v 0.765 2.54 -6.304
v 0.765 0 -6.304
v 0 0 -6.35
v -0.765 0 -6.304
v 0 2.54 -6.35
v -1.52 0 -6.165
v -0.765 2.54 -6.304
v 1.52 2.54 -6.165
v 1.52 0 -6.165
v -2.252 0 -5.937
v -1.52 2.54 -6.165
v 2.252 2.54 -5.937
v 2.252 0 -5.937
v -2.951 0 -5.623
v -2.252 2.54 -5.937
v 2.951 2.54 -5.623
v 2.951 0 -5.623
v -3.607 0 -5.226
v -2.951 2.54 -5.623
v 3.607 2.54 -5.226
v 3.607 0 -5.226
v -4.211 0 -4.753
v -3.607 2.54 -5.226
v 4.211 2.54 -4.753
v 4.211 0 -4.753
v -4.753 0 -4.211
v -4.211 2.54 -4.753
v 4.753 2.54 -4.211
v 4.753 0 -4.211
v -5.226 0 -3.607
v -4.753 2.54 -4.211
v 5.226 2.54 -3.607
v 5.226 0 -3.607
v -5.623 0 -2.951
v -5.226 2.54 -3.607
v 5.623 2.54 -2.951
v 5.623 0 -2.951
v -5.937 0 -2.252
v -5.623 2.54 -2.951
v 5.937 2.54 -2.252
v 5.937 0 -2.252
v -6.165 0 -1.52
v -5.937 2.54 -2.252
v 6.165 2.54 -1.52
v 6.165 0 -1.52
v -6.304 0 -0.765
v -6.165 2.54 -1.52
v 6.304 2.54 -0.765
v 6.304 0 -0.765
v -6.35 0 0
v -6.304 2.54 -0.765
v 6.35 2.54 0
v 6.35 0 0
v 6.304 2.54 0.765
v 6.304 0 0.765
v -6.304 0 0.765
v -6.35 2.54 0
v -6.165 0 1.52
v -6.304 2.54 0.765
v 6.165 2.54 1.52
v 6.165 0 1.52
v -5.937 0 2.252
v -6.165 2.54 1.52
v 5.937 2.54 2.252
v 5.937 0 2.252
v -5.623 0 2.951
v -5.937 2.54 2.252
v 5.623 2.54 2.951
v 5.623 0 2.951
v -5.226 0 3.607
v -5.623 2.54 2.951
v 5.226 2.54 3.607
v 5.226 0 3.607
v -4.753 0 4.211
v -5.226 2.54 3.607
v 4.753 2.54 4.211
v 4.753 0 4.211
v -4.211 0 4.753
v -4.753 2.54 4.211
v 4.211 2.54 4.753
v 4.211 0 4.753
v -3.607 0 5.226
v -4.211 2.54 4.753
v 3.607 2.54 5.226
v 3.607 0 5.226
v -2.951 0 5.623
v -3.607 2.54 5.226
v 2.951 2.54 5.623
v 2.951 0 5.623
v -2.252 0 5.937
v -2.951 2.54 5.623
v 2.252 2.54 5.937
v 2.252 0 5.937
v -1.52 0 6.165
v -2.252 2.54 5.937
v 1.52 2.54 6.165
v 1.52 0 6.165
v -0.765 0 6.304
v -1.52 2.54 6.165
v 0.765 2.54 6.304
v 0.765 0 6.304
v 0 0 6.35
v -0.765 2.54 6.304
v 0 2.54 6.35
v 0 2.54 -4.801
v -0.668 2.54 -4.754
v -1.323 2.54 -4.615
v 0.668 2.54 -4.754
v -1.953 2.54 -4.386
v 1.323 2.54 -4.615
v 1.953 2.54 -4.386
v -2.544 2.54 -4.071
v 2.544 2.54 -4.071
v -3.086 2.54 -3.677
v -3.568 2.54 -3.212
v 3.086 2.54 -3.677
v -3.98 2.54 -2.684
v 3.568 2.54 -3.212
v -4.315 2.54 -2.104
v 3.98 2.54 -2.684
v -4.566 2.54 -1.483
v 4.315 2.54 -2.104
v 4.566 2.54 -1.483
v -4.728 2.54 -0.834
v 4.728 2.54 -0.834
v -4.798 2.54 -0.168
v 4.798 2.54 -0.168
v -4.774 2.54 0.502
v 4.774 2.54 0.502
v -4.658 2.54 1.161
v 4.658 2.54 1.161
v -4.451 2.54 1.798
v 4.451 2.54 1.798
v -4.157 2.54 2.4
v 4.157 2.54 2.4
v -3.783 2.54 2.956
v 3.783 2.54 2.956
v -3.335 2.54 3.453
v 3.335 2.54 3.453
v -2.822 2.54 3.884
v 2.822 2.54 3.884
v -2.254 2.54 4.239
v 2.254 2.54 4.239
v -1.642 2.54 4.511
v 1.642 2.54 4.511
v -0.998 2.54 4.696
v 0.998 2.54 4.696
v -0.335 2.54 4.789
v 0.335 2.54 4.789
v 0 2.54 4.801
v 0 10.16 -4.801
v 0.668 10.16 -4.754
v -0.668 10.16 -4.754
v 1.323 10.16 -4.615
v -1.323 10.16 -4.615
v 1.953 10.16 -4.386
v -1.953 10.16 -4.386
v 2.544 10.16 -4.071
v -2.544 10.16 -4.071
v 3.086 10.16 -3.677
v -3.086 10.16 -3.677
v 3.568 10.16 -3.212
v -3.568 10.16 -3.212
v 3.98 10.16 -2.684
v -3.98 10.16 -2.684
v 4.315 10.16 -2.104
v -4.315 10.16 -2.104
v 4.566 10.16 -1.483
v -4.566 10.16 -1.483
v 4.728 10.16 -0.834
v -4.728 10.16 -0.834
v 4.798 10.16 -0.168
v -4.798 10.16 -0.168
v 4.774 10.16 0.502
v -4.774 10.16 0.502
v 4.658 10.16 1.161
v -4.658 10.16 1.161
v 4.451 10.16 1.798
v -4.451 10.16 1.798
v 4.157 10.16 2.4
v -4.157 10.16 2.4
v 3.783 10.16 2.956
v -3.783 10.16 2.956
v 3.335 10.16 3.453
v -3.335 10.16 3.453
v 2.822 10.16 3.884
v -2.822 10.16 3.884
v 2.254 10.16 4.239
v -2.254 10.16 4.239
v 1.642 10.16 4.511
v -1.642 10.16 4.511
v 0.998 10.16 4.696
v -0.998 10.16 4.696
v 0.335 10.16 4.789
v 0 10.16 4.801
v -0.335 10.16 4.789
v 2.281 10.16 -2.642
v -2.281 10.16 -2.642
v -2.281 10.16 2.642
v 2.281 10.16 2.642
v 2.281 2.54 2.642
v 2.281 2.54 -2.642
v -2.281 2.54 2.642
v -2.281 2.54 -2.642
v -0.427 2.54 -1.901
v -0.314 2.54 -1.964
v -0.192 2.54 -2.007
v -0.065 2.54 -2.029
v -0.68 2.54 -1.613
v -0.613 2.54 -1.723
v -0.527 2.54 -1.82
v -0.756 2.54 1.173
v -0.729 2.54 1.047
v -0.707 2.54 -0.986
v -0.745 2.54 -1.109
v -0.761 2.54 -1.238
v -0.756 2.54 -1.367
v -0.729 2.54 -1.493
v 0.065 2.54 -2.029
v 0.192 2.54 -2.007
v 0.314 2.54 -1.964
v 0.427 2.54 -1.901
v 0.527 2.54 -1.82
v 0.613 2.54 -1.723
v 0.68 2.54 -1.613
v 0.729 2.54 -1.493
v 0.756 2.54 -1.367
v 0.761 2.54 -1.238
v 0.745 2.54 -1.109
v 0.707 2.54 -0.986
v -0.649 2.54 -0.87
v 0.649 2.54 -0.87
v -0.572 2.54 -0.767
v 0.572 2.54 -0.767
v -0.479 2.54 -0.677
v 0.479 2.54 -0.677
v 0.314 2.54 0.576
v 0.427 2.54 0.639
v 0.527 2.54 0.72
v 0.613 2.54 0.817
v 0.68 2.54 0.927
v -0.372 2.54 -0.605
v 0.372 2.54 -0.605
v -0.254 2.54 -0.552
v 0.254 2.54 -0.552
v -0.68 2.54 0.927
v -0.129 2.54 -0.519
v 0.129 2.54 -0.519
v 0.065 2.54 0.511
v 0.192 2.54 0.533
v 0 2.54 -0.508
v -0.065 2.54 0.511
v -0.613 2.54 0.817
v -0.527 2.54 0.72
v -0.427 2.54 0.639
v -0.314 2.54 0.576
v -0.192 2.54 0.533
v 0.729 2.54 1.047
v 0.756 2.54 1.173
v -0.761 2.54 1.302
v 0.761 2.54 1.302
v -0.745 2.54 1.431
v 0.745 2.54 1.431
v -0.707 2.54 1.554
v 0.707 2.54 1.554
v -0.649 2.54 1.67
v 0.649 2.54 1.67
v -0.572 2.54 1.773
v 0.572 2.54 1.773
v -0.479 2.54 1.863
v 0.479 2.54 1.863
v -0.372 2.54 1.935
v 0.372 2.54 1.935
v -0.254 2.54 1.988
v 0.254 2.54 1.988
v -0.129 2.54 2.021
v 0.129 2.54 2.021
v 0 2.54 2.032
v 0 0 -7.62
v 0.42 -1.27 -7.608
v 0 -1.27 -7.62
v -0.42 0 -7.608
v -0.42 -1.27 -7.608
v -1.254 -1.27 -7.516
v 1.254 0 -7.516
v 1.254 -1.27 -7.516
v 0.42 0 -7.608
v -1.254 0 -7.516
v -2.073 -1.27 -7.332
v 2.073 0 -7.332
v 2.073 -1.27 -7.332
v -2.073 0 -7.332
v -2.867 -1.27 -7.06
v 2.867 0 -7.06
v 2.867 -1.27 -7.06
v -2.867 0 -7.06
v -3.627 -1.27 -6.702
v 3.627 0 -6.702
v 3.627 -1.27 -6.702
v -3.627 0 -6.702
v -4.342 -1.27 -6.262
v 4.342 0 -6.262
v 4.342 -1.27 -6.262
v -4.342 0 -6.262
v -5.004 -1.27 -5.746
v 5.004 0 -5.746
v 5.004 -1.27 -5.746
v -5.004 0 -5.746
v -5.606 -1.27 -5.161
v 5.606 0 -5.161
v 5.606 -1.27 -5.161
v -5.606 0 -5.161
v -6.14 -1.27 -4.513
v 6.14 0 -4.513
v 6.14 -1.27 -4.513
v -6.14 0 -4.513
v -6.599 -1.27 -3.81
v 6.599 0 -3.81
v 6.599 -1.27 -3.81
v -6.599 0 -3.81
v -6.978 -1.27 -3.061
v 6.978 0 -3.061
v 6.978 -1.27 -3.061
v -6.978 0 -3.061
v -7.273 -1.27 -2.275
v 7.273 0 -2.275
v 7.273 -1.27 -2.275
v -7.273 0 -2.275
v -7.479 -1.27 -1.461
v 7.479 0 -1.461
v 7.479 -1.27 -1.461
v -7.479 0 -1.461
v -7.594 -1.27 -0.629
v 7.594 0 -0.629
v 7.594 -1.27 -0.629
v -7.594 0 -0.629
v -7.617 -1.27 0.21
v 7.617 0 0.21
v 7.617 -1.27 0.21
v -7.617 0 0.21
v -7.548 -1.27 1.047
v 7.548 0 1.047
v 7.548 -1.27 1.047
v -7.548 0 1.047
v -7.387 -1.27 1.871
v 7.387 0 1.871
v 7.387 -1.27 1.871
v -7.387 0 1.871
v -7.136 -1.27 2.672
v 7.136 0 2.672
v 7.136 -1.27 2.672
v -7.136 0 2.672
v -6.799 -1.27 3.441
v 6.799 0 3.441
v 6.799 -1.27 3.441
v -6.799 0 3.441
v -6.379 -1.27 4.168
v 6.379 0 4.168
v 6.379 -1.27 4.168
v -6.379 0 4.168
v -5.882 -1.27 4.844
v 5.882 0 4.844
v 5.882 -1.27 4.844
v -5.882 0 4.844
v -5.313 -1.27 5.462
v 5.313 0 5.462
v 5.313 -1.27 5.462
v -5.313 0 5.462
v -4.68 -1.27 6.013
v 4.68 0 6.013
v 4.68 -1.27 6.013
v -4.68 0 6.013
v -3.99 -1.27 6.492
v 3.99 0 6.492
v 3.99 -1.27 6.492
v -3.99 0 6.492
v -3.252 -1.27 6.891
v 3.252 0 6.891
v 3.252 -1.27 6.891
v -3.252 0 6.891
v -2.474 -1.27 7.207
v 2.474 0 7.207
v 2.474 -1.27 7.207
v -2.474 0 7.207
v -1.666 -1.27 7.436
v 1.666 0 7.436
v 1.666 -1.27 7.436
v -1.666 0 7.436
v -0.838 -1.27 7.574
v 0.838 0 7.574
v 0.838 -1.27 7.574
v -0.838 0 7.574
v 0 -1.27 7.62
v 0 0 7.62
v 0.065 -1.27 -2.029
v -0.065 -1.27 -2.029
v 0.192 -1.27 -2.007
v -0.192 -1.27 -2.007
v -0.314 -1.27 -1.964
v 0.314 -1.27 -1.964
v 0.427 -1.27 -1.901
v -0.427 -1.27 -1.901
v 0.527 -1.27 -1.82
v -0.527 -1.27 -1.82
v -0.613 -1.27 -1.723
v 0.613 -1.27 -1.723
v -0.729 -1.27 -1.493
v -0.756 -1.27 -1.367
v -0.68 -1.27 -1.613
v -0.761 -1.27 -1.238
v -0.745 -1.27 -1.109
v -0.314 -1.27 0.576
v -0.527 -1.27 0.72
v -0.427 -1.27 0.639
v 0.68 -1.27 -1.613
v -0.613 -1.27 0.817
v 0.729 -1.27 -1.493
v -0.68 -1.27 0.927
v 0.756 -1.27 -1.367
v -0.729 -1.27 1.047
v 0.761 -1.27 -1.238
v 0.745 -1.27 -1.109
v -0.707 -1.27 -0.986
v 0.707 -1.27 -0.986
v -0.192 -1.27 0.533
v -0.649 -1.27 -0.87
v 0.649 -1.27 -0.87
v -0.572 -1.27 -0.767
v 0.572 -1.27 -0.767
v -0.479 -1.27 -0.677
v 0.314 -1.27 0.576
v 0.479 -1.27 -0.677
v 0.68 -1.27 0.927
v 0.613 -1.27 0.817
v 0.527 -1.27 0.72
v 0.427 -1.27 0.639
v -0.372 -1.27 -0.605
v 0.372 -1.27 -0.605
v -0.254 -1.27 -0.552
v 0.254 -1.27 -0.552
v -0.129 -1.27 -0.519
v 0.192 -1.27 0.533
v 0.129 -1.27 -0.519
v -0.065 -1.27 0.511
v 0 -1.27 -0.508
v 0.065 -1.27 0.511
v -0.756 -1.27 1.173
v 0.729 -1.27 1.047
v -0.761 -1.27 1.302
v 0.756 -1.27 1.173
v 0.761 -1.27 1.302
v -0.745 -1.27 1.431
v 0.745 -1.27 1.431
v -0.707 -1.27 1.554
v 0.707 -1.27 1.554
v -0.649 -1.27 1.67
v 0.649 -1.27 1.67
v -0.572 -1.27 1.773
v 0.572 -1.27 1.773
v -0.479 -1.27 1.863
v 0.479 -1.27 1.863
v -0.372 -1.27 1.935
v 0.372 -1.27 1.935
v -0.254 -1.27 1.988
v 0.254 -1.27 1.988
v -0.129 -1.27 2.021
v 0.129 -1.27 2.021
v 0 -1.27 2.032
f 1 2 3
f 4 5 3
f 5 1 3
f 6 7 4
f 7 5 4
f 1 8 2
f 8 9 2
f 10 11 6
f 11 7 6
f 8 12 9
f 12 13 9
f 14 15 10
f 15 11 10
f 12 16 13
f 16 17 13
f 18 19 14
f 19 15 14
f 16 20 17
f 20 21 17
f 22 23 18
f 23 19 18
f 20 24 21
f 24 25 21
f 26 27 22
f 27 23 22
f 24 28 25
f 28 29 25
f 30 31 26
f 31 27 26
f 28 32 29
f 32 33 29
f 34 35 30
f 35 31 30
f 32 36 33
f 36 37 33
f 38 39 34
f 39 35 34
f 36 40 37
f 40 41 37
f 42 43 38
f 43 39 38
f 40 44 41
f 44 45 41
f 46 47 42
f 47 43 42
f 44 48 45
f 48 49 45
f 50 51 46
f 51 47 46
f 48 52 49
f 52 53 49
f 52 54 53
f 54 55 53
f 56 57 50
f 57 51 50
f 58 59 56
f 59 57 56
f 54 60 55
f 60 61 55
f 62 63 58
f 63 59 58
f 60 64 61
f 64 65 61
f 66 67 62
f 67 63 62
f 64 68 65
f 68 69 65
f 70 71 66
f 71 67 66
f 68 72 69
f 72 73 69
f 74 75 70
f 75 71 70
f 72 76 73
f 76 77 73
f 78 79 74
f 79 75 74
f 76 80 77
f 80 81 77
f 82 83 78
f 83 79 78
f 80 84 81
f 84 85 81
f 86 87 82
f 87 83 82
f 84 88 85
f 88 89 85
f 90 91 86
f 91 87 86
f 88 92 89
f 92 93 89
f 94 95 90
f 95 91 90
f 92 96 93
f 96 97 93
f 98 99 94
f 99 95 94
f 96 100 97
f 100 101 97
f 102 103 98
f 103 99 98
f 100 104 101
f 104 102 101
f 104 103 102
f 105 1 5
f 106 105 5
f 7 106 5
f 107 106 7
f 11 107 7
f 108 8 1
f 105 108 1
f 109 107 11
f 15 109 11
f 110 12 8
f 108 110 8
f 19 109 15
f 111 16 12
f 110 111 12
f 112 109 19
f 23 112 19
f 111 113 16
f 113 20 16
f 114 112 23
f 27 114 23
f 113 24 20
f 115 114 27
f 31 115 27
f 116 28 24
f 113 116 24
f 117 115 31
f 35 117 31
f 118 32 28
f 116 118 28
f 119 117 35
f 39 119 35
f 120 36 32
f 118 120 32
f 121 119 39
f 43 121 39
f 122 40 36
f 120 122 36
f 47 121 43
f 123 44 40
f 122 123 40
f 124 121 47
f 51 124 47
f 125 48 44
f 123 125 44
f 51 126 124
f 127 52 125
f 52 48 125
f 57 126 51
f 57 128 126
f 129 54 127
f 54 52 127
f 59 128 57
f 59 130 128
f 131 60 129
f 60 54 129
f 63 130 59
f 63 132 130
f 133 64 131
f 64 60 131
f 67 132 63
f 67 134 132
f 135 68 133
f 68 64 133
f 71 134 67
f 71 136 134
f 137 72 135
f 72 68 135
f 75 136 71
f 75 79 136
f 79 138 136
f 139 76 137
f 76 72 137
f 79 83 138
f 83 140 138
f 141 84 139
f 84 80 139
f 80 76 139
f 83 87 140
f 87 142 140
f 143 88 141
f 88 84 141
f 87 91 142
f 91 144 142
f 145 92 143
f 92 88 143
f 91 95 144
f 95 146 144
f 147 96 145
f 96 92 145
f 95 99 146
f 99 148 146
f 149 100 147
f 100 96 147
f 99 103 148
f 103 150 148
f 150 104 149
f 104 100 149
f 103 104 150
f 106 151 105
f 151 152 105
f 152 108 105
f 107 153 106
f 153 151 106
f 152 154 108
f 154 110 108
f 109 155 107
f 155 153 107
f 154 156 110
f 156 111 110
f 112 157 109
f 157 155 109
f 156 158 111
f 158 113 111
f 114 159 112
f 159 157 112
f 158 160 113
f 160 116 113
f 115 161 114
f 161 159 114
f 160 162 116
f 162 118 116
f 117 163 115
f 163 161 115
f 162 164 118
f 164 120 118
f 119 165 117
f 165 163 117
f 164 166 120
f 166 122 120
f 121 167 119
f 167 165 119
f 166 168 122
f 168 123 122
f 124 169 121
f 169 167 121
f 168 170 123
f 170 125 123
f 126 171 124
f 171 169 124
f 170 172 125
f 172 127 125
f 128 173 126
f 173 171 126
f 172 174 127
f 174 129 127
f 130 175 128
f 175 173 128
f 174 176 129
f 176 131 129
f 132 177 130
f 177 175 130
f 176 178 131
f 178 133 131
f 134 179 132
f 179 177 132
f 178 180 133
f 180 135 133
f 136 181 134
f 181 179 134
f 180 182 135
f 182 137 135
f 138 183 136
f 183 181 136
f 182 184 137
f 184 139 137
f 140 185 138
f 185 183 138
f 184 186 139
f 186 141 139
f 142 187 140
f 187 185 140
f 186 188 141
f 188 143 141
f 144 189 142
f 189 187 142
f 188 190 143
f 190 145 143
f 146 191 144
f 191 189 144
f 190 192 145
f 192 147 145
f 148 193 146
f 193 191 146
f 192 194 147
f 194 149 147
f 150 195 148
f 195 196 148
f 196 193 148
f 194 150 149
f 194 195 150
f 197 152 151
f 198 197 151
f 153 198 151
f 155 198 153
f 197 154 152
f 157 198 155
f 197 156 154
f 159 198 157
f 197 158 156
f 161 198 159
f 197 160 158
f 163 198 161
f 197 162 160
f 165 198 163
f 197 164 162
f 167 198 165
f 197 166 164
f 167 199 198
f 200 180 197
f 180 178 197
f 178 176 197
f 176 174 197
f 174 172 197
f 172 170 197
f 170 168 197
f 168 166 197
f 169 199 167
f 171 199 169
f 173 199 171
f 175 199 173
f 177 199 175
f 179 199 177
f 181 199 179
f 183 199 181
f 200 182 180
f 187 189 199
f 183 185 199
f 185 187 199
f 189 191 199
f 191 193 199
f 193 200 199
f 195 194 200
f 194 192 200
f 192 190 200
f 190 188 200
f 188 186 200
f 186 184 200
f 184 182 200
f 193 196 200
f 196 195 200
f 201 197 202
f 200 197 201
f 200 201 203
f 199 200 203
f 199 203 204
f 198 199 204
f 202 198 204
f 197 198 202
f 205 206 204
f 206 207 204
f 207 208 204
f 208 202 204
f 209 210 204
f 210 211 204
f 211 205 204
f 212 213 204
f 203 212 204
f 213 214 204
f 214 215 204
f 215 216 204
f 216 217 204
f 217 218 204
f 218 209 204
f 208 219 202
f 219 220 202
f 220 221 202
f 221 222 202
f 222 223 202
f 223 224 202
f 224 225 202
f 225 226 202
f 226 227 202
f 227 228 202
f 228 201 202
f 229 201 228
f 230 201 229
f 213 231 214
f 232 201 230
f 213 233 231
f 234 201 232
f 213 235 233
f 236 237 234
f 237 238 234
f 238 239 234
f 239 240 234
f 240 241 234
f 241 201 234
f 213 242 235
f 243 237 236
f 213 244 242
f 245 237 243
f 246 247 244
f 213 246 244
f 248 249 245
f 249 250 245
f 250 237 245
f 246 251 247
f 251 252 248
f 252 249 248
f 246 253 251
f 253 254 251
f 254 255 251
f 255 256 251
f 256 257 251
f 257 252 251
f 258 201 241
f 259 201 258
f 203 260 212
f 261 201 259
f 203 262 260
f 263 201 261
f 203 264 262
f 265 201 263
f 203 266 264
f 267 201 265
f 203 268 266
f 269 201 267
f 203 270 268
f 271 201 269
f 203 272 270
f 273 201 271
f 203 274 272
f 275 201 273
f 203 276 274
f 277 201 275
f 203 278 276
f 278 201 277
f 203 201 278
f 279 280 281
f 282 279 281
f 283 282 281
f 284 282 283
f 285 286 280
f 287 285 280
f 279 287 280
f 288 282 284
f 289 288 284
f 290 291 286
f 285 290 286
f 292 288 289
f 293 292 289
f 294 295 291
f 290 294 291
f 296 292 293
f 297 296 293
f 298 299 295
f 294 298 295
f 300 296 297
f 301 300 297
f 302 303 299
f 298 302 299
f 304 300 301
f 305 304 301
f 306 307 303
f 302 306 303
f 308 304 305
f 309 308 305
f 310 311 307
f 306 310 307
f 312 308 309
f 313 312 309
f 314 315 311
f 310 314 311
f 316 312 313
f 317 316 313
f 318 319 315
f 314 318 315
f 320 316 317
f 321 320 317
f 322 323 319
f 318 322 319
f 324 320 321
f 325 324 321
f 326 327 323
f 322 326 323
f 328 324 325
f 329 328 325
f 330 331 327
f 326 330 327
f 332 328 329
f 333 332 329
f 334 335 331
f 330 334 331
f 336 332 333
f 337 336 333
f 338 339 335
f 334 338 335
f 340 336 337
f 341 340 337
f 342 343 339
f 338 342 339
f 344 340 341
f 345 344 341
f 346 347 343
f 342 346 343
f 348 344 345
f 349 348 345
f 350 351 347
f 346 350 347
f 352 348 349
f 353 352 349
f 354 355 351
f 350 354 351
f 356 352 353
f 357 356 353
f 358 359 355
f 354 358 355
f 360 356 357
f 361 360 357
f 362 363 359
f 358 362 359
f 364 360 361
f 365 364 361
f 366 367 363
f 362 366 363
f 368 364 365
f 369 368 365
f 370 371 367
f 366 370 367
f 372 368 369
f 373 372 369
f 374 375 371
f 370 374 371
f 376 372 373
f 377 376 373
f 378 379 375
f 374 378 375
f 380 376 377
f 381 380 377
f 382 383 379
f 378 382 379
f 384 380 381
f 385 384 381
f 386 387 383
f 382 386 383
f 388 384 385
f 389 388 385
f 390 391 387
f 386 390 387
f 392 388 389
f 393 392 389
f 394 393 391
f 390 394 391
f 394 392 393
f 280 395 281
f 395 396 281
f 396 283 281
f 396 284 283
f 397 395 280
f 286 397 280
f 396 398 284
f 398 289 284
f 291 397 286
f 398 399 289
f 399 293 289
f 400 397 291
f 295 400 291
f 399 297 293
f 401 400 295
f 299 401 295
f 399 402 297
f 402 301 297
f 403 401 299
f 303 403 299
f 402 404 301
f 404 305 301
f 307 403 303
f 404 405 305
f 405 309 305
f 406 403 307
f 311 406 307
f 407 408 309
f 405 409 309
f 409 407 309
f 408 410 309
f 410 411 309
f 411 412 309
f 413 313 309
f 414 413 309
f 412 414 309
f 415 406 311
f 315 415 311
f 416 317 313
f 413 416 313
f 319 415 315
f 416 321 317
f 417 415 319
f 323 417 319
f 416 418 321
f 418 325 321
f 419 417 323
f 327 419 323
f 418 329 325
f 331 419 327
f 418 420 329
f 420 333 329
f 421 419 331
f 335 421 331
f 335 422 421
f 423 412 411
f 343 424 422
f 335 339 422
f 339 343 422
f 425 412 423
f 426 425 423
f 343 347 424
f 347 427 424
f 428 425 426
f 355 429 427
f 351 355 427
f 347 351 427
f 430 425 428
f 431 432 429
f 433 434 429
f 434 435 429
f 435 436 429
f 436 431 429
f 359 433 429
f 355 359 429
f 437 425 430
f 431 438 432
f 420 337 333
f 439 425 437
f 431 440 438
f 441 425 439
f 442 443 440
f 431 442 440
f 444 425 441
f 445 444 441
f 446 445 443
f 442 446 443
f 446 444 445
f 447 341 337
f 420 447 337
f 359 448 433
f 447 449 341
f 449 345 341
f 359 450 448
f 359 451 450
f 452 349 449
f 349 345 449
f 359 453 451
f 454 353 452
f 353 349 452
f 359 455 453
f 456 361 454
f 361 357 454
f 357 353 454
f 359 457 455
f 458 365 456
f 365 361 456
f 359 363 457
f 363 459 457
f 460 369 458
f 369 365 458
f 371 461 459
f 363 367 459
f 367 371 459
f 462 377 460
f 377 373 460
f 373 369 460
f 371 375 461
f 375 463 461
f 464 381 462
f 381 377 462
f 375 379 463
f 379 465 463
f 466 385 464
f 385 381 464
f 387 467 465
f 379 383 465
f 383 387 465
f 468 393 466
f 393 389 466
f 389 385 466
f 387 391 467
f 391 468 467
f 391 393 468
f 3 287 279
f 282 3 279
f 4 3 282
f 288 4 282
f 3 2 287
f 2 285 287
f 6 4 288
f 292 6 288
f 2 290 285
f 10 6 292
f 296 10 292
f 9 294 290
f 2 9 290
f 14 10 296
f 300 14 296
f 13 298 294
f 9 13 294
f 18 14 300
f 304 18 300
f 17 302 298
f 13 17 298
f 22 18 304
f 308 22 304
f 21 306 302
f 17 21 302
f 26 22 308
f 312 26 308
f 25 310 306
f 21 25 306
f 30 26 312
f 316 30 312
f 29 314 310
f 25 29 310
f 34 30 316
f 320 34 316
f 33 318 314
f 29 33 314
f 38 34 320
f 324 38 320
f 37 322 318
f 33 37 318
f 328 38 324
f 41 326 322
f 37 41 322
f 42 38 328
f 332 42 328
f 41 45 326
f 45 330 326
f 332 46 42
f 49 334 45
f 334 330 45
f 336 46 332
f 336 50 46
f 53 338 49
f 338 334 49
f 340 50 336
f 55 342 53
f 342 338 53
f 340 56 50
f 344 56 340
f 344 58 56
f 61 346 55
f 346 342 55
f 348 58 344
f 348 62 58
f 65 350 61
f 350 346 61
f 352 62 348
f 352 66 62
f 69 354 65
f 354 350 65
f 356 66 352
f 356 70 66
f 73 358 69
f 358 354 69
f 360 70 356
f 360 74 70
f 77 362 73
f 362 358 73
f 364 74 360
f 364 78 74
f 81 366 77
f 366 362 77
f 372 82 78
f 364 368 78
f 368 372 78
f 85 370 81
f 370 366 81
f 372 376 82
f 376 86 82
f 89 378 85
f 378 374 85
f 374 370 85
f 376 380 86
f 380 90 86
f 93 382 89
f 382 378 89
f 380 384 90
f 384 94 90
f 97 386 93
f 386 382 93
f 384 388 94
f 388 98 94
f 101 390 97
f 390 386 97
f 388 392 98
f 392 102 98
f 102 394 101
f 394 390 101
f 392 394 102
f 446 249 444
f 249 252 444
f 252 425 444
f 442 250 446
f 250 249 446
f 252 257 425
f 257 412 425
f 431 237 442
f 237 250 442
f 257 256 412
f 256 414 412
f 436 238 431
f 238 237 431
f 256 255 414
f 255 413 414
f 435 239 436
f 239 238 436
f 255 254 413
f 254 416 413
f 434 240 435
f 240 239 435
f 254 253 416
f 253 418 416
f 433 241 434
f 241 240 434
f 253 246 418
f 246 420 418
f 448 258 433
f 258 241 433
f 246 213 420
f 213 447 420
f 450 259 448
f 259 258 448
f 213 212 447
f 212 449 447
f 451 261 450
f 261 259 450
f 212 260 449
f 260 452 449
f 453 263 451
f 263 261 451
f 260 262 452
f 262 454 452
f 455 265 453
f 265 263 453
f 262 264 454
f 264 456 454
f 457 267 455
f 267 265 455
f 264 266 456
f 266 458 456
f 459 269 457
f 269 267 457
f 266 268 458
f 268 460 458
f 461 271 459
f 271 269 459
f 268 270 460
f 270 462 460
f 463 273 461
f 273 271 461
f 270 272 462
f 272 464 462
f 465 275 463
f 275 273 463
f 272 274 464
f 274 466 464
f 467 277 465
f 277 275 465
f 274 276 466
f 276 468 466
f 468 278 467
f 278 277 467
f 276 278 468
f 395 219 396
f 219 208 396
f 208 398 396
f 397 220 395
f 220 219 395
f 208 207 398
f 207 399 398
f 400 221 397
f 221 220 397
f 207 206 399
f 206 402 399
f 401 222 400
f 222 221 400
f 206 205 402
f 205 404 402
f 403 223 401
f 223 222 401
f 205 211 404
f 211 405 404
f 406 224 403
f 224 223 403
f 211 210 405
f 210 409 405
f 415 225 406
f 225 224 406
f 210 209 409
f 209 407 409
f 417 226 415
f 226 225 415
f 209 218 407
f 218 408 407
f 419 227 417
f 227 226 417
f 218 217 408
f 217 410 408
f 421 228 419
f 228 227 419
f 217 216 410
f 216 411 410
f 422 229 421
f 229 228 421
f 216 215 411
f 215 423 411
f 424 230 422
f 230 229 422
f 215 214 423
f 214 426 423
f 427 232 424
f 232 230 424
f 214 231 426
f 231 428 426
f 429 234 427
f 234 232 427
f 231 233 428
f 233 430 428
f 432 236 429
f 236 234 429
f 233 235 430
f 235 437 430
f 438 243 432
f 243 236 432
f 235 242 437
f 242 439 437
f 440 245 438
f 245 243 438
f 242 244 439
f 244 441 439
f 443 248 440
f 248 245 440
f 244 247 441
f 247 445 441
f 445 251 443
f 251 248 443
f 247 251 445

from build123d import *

# Parameters (mm, degrees)
SKETCH1_R           = 6.35
BOSS_EXTRUDE1_DEPTH = 2.54
SKETCH2_R           = 4.8006
BOSS_EXTRUDE2_DEPTH = 7.62
SKETCH3_W           = 4.562763636
SKETCH3_H           = 5.2832
CUT_EXTRUDE1_DEPTH  = 7.62
SKETCH6_R           = 7.62
BOSS_EXTRUDE3_DEPTH = 1.27
SKETCH4_R           = 0.762
CUT_EXTRUDE2_DEPTH  = 4.81
SKETCH5_R           = 0.762
CUT_EXTRUDE3_DEPTH  = 4.81


with BuildPart() as part:
    # Sketch1 → Boss-Extrude1 (new body)
    with BuildSketch(Plane(origin=(0, 0, 0), x_dir=(1, 0, 0), z_dir=(0, 1, 0))):
        Circle(SKETCH1_R)
    extrude(amount=BOSS_EXTRUDE1_DEPTH)

    # Sketch2 → Boss-Extrude2 (add)
    with BuildSketch(Plane(origin=(0, 2.54, 0), x_dir=(1, 0, 0), z_dir=(0, 1, 0))):
        Circle(SKETCH2_R)
    extrude(amount=BOSS_EXTRUDE2_DEPTH)

    # Sketch3 → Cut-Extrude1 (cut)
    with BuildSketch(Plane(origin=(0, 10.16, 0), x_dir=(1, 0, 0), z_dir=(0, 1, 0))):
        Rectangle(SKETCH3_W, SKETCH3_H)
    extrude(amount=-CUT_EXTRUDE1_DEPTH, mode=Mode.SUBTRACT)

    # Sketch6 → Boss-Extrude3 (add)
    with BuildSketch(Plane.XZ):
        Circle(SKETCH6_R)
    extrude(amount=BOSS_EXTRUDE3_DEPTH)

    # Sketch4 → Cut-Extrude2 (cut, through all)
    with BuildSketch(Plane(origin=(0, 2.54, 0), x_dir=(1, 0, 0), z_dir=(0, 1, 0))):
        with Locations((0, -1.27)):
            Circle(SKETCH4_R)
    extrude(amount=-CUT_EXTRUDE2_DEPTH, mode=Mode.SUBTRACT)

    # Sketch5 → Cut-Extrude3 (cut, through all)
    with BuildSketch(Plane(origin=(0, 2.54, 0), x_dir=(1, 0, 0), z_dir=(0, 1, 0))):
        with Locations((0, 1.27)):
            Circle(SKETCH5_R)
    extrude(amount=-CUT_EXTRUDE3_DEPTH, mode=Mode.SUBTRACT)


solid = part.part
